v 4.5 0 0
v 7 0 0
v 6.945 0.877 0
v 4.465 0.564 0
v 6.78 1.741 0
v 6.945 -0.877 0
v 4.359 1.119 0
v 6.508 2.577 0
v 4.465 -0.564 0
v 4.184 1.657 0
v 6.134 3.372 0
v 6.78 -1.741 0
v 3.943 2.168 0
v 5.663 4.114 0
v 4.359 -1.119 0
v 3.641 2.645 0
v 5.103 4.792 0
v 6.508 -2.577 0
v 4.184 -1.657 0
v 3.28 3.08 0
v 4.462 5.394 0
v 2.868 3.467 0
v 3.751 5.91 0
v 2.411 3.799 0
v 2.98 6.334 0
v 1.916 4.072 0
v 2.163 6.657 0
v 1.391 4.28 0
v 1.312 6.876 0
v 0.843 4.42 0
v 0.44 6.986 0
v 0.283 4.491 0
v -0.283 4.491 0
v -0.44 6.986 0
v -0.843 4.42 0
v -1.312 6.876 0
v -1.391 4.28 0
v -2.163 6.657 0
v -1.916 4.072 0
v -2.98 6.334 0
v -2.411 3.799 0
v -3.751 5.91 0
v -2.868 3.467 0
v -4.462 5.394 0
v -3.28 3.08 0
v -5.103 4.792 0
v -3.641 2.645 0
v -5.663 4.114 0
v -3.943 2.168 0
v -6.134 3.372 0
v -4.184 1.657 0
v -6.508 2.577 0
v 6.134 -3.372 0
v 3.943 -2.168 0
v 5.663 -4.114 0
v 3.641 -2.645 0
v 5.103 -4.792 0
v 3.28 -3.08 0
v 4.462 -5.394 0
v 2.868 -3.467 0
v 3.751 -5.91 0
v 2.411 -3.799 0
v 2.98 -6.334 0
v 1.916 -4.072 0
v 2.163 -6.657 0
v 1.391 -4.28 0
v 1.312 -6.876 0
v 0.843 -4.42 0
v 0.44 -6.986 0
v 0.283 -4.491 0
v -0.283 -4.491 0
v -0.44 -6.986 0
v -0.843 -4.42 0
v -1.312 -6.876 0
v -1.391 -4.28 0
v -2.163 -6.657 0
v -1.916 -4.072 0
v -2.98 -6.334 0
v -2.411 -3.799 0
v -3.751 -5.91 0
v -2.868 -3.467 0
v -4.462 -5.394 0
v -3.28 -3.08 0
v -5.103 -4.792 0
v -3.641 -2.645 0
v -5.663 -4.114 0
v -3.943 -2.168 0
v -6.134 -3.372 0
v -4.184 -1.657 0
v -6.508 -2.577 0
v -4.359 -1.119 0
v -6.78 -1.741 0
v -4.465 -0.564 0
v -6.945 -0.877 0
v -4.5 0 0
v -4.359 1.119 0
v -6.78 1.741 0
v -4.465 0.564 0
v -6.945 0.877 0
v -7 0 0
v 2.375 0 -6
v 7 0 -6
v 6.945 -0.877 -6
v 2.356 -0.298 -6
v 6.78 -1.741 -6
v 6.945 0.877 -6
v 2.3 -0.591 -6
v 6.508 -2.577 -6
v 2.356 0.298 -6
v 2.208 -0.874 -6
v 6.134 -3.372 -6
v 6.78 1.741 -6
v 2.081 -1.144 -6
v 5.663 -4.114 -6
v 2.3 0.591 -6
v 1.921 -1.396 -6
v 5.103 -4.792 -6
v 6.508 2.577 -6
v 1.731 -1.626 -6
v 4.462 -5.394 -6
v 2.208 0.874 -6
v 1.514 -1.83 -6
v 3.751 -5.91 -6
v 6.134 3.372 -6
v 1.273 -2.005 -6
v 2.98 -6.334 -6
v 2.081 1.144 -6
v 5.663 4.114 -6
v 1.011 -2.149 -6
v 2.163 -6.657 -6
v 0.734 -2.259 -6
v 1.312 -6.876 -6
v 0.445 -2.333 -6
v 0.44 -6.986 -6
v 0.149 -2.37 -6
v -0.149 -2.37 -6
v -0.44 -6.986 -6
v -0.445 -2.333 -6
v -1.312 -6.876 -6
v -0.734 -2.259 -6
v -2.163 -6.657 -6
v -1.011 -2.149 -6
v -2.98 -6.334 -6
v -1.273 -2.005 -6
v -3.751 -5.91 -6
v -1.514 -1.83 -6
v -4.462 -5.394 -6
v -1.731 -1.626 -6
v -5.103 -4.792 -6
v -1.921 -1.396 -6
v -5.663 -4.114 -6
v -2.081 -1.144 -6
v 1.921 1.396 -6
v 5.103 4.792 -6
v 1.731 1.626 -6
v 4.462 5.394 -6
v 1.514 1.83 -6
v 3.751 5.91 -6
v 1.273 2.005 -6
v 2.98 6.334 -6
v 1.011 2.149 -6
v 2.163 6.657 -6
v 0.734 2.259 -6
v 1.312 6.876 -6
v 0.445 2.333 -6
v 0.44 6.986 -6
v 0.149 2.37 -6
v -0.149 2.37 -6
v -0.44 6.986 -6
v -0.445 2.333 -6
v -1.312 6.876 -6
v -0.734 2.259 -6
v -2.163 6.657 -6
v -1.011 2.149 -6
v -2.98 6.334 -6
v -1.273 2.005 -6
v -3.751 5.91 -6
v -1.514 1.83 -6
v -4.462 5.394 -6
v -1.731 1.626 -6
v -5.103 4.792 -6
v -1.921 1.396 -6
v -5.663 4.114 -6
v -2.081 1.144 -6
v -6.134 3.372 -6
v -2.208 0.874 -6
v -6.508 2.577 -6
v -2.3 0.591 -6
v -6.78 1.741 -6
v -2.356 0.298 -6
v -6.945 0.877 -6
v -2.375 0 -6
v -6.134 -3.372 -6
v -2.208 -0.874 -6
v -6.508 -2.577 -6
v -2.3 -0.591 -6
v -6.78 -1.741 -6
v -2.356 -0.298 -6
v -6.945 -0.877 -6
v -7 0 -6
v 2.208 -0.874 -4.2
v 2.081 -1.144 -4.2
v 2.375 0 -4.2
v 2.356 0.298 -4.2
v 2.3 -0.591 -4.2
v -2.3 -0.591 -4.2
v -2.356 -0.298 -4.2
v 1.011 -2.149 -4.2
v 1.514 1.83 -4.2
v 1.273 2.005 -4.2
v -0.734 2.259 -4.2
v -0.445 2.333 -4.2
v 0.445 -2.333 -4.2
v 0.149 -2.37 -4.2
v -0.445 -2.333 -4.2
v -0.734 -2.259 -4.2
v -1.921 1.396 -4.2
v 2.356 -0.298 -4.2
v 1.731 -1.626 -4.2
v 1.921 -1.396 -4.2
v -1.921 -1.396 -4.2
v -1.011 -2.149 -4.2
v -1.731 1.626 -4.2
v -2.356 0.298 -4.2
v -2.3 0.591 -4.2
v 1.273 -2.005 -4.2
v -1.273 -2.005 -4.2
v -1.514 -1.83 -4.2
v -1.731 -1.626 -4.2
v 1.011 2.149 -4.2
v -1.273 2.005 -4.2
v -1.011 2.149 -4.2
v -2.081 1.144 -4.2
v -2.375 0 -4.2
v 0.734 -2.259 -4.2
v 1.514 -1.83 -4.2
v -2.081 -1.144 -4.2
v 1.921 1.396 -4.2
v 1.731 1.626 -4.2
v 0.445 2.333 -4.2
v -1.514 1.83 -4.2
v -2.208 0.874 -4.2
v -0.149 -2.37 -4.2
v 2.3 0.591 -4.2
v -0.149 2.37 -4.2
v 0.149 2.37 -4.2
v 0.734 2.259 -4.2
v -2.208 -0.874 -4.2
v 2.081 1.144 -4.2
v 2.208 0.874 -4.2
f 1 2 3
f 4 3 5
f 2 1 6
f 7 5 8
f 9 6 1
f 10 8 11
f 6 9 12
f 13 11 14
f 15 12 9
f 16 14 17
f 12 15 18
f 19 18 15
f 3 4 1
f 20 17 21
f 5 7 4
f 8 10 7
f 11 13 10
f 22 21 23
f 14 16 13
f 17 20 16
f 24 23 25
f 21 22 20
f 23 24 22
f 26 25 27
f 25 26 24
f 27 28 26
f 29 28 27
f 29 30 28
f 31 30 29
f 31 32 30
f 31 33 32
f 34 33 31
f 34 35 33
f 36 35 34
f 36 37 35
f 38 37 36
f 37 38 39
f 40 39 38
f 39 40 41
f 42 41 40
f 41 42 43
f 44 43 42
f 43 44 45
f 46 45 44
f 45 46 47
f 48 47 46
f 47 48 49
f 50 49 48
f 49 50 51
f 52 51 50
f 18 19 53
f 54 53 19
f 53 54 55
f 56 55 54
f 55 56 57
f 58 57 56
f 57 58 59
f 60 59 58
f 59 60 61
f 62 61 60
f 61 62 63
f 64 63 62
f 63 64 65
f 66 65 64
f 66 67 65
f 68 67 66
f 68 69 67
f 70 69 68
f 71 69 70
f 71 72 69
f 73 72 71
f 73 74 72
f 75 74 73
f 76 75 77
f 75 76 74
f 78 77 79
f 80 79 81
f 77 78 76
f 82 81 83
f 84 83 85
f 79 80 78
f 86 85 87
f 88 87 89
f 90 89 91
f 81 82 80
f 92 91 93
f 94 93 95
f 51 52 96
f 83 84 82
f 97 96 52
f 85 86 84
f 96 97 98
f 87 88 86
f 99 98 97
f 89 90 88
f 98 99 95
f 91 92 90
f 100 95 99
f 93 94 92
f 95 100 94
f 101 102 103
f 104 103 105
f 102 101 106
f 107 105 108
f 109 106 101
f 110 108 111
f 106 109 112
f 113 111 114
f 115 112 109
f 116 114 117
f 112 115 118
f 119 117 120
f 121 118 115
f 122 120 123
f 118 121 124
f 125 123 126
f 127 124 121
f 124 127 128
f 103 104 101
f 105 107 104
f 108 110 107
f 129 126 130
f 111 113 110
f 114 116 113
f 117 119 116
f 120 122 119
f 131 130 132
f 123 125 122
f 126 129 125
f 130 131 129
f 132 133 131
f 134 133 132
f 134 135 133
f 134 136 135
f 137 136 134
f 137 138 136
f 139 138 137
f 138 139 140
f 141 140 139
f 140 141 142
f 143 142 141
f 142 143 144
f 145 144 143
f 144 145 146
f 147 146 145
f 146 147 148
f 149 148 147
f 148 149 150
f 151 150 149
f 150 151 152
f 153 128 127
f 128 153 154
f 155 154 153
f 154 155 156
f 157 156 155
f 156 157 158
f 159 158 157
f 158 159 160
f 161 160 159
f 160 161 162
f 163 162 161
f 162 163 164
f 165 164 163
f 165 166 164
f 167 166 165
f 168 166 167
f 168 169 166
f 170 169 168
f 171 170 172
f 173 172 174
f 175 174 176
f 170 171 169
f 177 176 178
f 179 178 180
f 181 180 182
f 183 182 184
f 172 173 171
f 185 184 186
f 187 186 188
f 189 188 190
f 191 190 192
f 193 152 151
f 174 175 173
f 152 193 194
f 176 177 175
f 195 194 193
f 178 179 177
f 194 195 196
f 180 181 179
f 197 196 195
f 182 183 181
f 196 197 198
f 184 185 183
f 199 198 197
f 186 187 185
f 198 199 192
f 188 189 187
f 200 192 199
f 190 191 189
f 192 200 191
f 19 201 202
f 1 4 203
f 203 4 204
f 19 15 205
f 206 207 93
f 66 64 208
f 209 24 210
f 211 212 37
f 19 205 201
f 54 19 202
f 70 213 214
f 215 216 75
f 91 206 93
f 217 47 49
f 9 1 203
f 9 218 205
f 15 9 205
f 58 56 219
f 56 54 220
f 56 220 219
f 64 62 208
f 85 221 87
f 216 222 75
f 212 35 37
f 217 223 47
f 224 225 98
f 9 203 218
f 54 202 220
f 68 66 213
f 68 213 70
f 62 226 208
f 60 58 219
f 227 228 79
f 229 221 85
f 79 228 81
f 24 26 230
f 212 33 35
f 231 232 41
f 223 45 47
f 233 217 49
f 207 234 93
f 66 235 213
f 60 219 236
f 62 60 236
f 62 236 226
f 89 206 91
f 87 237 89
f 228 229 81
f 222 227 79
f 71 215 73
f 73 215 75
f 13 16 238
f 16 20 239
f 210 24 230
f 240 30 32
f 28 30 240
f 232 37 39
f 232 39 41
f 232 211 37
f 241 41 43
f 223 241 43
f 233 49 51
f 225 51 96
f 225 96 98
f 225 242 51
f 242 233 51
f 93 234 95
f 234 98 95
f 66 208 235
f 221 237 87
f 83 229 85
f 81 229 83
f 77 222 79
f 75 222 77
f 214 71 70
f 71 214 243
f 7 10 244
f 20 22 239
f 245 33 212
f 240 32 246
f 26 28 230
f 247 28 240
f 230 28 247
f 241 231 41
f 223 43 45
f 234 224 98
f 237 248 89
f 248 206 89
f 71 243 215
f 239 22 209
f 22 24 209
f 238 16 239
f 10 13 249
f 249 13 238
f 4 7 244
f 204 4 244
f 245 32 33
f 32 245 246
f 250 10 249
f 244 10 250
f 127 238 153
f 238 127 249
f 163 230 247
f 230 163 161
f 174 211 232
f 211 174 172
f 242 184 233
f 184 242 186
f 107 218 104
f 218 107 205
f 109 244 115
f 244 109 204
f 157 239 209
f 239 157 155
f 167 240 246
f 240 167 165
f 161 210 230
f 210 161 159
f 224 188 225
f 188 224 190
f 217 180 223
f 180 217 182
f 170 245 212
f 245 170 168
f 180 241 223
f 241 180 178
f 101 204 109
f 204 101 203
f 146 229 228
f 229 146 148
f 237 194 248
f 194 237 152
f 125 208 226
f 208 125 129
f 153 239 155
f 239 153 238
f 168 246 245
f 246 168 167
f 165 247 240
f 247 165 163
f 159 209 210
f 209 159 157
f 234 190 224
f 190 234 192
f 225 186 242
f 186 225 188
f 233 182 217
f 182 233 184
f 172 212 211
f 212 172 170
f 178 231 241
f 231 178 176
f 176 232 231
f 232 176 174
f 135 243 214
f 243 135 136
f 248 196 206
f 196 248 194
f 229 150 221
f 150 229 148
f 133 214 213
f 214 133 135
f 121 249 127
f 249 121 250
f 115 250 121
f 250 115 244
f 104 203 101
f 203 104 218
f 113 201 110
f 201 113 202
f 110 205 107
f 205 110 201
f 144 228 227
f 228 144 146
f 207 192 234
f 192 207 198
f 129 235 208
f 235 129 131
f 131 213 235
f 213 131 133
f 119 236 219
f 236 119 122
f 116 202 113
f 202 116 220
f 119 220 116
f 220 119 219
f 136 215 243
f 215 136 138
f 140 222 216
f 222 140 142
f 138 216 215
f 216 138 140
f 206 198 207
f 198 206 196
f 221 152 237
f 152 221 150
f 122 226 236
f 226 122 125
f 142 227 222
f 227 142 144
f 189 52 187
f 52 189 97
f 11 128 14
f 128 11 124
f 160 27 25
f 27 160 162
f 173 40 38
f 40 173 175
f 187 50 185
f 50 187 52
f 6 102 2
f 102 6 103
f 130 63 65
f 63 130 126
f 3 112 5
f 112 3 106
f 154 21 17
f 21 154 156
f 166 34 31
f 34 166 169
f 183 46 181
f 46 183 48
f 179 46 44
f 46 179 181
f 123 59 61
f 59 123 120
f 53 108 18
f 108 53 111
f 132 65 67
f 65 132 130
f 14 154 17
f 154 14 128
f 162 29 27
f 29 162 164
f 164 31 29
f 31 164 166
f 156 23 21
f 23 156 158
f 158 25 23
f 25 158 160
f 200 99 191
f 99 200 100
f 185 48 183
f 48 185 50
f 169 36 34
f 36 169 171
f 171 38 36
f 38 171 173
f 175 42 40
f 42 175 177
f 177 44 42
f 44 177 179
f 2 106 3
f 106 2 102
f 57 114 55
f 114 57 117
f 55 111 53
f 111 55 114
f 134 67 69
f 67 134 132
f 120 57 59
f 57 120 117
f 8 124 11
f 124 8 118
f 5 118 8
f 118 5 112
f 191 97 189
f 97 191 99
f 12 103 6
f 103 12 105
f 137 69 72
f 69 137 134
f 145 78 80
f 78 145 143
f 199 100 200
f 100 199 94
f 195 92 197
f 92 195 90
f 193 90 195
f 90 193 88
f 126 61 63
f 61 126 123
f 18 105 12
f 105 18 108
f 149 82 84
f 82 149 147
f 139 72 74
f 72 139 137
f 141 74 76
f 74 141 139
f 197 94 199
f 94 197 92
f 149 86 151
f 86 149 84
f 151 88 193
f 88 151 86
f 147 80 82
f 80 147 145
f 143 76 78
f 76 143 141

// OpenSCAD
$fn = 50;


difference() {
	union() {
		translate(v = [0, 0, -6.0000000000]) {
			cylinder(h = 6, r = 7.0000000000);
		}
		cylinder(h = 0, r = 10.0000000000);
	}
	union() {
		translate(v = [0, 0, 0]) {
			rotate(a = [0, 0, 0]) {
				difference() {
					union() {
						#translate(v = [0, 0, -6.0000000000]) {
							cylinder(h = 6, r = 2.2500000000);
						}
						#translate(v = [0, 0, -4.2000000000]) {
							cylinder(h = 4.2000000000, r1 = 2.3750000000, r2 = 4.5000000000);
						}
						#translate(v = [0, 0, -6.0000000000]) {
							cylinder(h = 6, r = 2.3750000000);
						}
						#translate(v = [0, 0, -6.0000000000]) {
							cylinder(h = 6, r = 2.2500000000);
						}
					}
					union();
				}
			}
		}
	}
}
